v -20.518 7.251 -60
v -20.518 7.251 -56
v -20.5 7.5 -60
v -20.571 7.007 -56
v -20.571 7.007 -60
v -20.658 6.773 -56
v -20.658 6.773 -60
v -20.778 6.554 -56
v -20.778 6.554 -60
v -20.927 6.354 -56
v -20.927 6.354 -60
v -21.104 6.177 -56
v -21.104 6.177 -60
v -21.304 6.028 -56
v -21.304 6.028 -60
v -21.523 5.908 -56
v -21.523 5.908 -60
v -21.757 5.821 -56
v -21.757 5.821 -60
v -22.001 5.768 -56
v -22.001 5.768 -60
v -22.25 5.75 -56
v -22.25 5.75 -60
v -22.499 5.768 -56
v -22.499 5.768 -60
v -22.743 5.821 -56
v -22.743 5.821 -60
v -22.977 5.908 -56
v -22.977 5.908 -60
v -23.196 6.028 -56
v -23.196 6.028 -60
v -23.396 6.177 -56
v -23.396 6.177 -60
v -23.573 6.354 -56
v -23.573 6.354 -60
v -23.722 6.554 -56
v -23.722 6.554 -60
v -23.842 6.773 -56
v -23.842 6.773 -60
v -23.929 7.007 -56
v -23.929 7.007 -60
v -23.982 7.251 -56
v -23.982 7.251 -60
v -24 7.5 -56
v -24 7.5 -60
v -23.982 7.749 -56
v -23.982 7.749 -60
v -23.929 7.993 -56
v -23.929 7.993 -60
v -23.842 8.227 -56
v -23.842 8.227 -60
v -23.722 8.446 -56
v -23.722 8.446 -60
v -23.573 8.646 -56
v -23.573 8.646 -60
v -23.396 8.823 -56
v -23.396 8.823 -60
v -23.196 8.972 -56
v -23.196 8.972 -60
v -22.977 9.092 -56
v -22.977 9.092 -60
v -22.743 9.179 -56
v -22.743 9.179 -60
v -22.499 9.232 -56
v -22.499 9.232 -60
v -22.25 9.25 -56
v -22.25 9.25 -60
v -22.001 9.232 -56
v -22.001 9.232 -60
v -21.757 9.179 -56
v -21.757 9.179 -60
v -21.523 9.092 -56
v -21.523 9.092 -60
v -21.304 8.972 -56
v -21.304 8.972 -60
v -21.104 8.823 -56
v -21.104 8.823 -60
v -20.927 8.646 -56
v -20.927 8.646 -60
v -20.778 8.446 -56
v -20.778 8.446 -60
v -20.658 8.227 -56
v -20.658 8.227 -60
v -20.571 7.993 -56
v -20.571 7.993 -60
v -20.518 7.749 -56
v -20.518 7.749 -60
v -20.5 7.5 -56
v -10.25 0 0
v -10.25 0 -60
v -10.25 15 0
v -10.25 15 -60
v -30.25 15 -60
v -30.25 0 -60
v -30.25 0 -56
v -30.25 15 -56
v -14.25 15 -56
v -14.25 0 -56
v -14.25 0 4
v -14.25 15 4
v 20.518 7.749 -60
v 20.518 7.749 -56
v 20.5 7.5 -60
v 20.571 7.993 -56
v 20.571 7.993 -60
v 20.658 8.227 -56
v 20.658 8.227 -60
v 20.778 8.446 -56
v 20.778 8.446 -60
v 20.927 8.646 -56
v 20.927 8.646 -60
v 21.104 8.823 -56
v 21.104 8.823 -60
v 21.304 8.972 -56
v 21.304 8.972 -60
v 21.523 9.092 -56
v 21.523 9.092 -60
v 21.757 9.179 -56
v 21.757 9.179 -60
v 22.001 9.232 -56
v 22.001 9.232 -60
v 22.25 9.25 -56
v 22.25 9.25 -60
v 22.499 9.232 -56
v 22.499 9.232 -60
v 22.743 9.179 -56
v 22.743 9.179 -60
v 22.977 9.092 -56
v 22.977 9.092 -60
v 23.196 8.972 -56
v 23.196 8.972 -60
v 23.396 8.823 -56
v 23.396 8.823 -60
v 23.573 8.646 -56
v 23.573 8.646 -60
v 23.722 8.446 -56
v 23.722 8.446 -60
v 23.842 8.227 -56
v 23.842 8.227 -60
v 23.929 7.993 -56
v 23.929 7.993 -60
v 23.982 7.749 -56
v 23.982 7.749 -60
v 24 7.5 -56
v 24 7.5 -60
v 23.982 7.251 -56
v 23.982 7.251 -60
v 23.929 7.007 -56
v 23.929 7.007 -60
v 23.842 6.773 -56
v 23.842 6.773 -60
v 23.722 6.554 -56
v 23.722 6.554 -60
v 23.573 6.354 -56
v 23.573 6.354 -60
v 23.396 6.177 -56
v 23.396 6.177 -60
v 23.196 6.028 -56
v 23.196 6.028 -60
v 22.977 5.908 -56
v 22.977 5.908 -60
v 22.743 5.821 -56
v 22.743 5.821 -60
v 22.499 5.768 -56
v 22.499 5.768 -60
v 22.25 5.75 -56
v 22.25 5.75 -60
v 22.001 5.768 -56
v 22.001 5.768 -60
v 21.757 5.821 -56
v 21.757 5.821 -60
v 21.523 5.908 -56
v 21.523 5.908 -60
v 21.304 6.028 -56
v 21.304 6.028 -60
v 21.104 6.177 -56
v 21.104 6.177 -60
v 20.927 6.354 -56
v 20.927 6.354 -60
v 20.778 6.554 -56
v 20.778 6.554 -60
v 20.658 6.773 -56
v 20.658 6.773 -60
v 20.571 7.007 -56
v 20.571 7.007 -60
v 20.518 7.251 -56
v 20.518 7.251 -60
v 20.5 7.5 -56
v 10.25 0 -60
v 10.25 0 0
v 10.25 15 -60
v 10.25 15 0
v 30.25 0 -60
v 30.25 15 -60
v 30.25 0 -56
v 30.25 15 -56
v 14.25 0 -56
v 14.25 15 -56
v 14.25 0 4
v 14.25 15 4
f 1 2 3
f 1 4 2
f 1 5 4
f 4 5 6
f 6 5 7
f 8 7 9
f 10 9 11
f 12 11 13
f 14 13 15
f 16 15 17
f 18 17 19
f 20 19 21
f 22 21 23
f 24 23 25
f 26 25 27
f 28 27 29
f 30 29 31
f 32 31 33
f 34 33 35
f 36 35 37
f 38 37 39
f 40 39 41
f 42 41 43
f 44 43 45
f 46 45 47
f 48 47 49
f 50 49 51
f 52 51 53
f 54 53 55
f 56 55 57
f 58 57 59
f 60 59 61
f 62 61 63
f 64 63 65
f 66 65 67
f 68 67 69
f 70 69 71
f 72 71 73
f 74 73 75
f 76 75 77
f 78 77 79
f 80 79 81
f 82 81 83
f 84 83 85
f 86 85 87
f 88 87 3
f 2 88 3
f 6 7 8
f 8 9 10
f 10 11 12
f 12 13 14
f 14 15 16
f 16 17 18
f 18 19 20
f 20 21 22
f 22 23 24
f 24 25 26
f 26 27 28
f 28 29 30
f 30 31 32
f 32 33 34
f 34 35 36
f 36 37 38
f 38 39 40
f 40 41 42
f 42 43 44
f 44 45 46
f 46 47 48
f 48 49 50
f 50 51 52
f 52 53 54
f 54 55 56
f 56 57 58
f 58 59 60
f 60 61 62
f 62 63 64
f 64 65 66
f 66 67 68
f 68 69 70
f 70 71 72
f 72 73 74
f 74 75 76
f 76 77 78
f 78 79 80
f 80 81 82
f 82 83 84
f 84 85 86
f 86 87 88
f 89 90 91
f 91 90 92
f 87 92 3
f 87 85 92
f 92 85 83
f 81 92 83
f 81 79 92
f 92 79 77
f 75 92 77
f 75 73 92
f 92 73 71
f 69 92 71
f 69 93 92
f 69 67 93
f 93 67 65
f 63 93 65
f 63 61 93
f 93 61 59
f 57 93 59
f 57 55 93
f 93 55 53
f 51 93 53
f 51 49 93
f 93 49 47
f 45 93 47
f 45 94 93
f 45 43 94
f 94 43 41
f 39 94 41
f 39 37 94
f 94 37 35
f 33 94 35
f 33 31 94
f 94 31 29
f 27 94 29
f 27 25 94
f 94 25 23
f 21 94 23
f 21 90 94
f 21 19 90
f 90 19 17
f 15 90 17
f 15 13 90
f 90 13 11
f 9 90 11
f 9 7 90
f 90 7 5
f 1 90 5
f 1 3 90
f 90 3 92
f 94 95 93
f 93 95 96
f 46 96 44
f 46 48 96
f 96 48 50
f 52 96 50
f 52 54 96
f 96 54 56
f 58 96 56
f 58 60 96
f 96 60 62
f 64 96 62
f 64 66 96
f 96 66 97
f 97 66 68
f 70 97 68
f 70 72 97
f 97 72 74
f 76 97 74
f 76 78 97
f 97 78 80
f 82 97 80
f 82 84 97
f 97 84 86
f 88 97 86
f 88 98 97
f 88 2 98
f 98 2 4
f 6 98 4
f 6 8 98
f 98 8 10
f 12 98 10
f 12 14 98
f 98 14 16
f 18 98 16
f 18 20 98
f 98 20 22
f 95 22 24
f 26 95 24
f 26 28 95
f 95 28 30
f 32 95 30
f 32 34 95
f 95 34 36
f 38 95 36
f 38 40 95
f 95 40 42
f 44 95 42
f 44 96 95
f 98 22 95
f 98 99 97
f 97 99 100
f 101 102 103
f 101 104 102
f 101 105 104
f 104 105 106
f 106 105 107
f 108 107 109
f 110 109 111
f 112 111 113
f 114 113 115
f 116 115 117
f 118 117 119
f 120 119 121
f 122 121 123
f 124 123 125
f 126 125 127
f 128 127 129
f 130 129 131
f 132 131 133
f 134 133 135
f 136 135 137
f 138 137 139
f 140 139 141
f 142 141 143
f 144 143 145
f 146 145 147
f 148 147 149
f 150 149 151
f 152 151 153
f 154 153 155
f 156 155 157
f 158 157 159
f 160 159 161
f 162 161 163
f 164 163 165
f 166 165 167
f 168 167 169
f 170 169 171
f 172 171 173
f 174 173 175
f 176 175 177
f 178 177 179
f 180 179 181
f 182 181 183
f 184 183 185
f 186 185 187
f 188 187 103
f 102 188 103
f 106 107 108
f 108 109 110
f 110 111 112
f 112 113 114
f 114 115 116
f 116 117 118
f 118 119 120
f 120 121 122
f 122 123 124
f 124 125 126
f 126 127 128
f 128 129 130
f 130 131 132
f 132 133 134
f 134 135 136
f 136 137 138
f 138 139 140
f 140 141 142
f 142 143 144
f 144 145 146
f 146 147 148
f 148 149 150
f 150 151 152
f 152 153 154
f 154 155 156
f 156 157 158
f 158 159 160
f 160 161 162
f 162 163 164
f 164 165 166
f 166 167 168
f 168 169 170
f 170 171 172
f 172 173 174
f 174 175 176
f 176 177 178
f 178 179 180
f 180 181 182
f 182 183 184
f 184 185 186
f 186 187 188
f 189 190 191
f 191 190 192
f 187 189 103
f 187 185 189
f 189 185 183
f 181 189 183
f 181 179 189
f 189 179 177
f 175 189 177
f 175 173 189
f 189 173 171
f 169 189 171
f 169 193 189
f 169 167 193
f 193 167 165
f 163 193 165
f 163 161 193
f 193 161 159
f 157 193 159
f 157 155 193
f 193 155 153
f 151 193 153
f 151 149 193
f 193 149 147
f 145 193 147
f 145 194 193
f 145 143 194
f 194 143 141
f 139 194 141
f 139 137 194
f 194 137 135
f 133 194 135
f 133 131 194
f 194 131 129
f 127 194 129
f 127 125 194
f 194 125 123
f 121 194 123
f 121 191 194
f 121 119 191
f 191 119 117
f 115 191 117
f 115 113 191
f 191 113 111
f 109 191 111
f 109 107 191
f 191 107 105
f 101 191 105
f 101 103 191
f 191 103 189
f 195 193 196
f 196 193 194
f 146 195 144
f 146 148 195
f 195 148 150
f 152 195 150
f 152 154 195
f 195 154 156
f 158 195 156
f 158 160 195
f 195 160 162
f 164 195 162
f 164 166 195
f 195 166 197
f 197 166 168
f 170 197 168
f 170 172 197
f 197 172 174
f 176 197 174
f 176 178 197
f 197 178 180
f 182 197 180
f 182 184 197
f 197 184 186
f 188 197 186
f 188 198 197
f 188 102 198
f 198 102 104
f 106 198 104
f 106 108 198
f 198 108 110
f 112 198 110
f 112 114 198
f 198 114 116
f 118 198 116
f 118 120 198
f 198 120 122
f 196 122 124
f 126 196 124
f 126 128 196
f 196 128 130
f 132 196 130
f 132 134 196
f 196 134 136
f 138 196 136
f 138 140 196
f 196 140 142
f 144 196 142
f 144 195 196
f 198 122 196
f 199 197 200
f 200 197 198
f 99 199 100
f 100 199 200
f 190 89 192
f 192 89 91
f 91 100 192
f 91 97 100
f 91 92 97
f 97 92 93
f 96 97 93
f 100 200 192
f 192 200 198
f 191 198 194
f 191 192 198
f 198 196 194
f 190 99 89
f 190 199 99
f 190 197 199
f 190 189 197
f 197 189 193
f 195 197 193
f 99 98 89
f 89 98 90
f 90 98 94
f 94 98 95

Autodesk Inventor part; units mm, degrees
ref_plane "YZ Plane" through (0, 0, 0) normal (1, 0, 0) x (0, 1, 0)
ref_plane "XZ Plane" through (0, 0, 0) normal (0, 1, 0) x (-1, 0, 0)
ref_plane "XY Plane" through (0, 0, 0) normal (0, 0, 1) x (1, 0, 0)
sketch "Sketch1" plane through (0, 0, 0) normal (0, 1, 0) x (-1, 0, 0)
  line L0 (0, 0) -> (-10.25, 0)
  line L1 (-10.25, 0) -> (-10.25, -60)
  line L2 (-14.25, 4) -> (0, 4)
  line L3 (0, 4) -> (0, 0)
  line L4 (-10.25, -60) -> (-30.25, -60)
  line L5 (-30.25, -60) -> (-30.25, -56)
  line L6 (-30.25, -56) -> (-14.25, -56)
  line L7 (-14.25, -56) -> (-14.25, 4)
  dimension "d0" = 10.25
  dimension "d1" = 60
  dimension "d3" = 4
  dimension "d4" = 20
  dimension "d5" = 4
  dimension "d6" = 4
extrude "Extrusion1" add sketch "Sketch1" along normal blind 15
sketch "Sketch2" plane through (14.25, 0, -56) normal (0, 0, 1) x (1, 0, 0)
  line L0 (0, 15) -> (16, 0) construction
  line L1 (0, 0) -> (16, 15) construction
  point P0 (-14.25, 0)
  point P1 (8, 7.5)
hole "Hole1" at (22.25, 7.5, -56) direction (0, 0, -1) diameter 3.5 depth 8 tip angle 118
mirror "Mirror1" about plane through (0, 0, 0) normal (-1, 0, 0)
properties part number "clip" material "ABS Plastic"
